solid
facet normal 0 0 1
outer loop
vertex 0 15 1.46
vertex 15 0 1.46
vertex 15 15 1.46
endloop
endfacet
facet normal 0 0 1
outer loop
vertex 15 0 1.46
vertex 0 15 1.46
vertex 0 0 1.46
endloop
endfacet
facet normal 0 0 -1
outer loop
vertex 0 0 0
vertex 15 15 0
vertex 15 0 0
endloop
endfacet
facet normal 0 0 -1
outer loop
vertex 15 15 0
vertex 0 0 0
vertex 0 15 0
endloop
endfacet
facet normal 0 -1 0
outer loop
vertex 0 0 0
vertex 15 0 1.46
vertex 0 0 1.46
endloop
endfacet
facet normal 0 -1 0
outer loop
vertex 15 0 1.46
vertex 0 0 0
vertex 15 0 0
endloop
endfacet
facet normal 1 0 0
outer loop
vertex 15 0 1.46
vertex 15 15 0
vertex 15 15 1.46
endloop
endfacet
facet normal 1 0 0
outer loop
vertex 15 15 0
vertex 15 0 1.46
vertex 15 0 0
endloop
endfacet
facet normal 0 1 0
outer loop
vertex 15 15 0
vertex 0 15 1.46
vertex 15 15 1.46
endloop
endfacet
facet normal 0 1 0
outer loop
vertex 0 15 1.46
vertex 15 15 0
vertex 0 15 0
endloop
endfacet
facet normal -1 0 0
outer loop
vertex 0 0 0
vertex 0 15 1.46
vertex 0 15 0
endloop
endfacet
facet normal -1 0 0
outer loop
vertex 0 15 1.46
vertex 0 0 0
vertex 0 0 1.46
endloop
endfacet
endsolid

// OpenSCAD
/* Warning, this is a very basic generator with a lot of approximation 
input data : [LFBGA, AQB, 15x15x1.46mm, 217, , A, C04-21126A]
generated by com.zoubworld.electronics.cad.model3d.Basic
Date : Sun Feb 15 10:50:49 CET 2026
*/

//body
color("black")
translate([0,0,0])
cube([15.0,15.0,1.46], center=false);
